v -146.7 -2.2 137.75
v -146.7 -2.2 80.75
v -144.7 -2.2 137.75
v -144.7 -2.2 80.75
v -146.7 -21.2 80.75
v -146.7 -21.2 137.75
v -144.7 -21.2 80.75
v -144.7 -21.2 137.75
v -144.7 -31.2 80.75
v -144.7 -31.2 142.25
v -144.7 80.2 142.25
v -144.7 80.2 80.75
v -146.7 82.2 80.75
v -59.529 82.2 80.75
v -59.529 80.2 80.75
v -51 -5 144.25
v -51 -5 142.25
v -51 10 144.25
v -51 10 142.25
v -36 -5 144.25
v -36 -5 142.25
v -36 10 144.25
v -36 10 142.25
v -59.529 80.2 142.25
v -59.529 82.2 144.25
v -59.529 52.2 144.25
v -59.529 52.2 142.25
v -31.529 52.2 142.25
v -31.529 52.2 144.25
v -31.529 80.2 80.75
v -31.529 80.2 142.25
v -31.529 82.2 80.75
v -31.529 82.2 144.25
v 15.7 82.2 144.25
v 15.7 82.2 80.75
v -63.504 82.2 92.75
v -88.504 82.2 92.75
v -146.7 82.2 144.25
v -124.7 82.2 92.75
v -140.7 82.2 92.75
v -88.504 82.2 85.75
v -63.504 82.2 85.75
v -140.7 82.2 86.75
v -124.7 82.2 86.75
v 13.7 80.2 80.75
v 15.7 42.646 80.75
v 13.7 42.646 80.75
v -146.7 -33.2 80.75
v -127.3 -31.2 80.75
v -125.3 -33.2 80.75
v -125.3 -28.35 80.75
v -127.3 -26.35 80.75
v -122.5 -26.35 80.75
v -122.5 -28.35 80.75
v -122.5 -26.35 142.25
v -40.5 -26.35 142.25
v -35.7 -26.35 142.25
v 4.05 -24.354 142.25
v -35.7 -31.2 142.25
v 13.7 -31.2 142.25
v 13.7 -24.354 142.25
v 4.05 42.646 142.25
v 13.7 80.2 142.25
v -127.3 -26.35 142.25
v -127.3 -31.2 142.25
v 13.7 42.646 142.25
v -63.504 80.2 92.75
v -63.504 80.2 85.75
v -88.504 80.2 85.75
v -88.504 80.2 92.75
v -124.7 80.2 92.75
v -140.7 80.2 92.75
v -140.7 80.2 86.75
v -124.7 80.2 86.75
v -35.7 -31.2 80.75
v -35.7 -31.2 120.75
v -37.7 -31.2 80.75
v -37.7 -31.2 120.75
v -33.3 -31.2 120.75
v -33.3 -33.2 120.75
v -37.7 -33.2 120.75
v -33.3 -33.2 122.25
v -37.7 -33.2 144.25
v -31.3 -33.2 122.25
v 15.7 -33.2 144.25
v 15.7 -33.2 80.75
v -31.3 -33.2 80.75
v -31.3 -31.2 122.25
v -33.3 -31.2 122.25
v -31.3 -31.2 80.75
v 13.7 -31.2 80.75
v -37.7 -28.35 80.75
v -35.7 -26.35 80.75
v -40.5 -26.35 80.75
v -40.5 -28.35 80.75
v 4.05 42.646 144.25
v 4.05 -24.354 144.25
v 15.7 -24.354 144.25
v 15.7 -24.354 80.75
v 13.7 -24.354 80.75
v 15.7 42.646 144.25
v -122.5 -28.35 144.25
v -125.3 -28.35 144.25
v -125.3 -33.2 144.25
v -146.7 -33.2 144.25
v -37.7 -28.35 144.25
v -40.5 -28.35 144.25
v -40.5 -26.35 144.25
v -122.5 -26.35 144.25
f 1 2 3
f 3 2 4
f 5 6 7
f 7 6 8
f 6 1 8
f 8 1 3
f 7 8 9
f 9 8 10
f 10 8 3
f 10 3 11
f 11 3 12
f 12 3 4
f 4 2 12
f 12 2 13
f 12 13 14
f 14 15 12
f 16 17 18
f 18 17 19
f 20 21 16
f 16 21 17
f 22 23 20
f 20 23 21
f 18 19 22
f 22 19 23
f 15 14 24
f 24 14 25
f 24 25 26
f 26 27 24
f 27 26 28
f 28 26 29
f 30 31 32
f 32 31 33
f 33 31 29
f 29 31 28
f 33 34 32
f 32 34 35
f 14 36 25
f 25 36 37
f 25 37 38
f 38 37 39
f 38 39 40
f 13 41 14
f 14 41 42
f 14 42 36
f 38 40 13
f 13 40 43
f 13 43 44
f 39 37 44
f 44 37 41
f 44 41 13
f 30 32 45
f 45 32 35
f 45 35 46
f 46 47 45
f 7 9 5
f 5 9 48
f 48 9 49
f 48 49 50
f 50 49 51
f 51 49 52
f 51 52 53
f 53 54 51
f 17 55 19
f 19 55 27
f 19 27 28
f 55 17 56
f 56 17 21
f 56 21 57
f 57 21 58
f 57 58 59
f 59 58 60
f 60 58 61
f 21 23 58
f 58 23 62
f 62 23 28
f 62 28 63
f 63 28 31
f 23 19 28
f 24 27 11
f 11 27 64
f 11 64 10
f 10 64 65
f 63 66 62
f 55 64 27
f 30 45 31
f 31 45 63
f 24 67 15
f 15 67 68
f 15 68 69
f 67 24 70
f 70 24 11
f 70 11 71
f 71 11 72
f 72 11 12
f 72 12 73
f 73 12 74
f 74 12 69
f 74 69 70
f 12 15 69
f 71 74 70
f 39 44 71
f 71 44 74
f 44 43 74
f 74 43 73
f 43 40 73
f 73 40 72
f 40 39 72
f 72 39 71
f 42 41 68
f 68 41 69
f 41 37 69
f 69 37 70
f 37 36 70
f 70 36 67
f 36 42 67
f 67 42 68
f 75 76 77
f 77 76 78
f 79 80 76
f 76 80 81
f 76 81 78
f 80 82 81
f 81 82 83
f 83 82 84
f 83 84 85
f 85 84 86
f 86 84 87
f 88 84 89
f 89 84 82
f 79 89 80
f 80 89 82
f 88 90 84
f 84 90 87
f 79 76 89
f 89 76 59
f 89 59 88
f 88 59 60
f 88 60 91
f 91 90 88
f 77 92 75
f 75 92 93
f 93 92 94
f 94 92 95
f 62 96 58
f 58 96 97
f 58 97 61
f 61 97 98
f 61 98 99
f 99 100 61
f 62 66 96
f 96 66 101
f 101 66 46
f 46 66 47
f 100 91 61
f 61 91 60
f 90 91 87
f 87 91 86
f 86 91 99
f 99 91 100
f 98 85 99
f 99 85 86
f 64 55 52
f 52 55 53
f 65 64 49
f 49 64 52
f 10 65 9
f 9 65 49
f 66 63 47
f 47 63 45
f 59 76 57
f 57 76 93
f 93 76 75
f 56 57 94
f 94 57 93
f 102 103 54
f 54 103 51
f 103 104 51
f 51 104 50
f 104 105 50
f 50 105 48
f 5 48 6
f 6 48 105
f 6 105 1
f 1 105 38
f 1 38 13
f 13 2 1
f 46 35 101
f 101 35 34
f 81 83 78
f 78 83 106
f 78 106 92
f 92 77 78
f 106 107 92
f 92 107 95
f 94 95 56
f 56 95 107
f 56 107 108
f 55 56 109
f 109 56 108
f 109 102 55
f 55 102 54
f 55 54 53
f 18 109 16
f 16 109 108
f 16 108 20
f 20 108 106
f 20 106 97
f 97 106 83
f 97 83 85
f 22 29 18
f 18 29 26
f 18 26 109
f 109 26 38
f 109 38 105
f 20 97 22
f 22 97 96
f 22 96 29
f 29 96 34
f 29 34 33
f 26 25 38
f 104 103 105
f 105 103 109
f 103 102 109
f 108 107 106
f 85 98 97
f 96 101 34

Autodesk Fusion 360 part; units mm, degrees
ref_plane "Arbeitsebene1" through (-71.75, -25.15, 142.25) normal (0, 0, 1) x (0, -1, 0)
sketch "Skizze1" plane through (0, 0, 142.25) normal (0, 0, 1) x (1, 0, 0)
  line L0 (-35.7, -26.35) -> (-35.7, -31.2)
  line L1 (-35.7, -26.35) -> (-40.5, -26.35)
  line L2 (-40.5, -26.35) -> (-40.5, -28.35)
  line L3 (-35.5, -1) -> (-35.5, -31)
  line L4 (-33.5, -26.15) -> (-40.5, -26.15)
  line L5 (-40.5, -28.35) -> (-37.7, -28.35)
  line L6 (-37.7, -28.35) -> (-37.7, -33.2)
  line L7 (-37.7, -33.2) -> (15.7, -33.2)
  line L8 (-35.7, -31.2) -> (13.7, -31.2)
  line L9 (15.7, -33.2) -> (15.7, 82.2)
  line L10 (-127.3, -26.35) -> (-127.3, -31.2)
  line L11 (-127.3, -26.35) -> (-122.5, -26.35)
  line L12 (-103, -26.15) -> (-129.5, -26.15)
  line L13 (-127.5, -1) -> (-127.5, -31)
  line L14 (-122.5, -26.35) -> (-122.5, -28.35)
  line L15 (-122.5, -28.35) -> (-125.3, -28.35)
  line L16 (-125.3, -28.35) -> (-125.3, -33.2)
  line L17 (-125.3, -33.2) -> (-146.7, -33.2)
  line L18 (-127.3, -31.2) -> (-144.7, -31.2)
  line L19 (-144.7, -31.2) -> (-144.7, 80.2)
  line L20 (-146.7, -33.2) -> (-146.7, 82.2)
  line L21 (15.7, 82.2) -> (-146.7, 82.2)
  line L22 (-144.7, 80.2) -> (13.7, 80.2)
  line L23 (13.7, -31.2) -> (13.7, 80.2)
  line L24 (-122.5, -26.35) -> (-40.5, -26.35)
  dimension "d51" = 0.2
  dimension "d52" = 0.2
  dimension "d53" = 4.8
  dimension "d54" = 2
  dimension "d55" = 4.85
  dimension "d56" = 2.8
  dimension "d57" = 4.85
  dimension "d58" = 53.4
  dimension "d59" = 49.4
  dimension "d60" = 115.4
  dimension "d61" = 0.2
  dimension "d62" = 0.2
  dimension "d63" = 4.8
  dimension "d64" = 4.85
  dimension "d65" = 2
  dimension "d66" = 2.8
  dimension "d67" = 4.85
  dimension "d68" = 21.4
  dimension "d69" = 17.4
  dimension "d70" = 111.4
  dimension "d71" = 115.4
  dimension "d72" = 158.4
  dimension "d73" = 162.4
  dimension "d74" = 111.4
extrude "Extrusion1" add sketch "Skizze1" along normal blind 2
extrude "Extrusion2" add sketch "Skizze1" against normal blind 61.5 contours L0 L1 L2 L5 L6 L7 L8 L9 L10 L11 L14 L15 L16 L17 L18 L19 L20 L21 L22 L23
box "Grundkörper Quader5" cut length 67 width 11.65 height -63.5 placed x (0, 1, 0) y (1, 0, 0) z (0, 0, -1) at (4.05, -24.3544, 80.75)
box "Grundkörper Quader1" cut length 40 width 2 height -41.5 placed x (0, -1, 0) y (-1, 0, 0) z (0, 0, -1) at (-31.3, 6.7996, 80.75)
box "Grundkörper Quader2" cut length 2 width 4.4 height -40 placed x (0, 1, 0) y (1, 0, 0) z (0, 0, -1) at (-37.7, -33.2, 80.75)
sketch "Skizze10" plane through (0, 82.2, 0) normal (0, 1, 0) x (-1, 0, 0)
  line L0 (146.7, 80.75) -> (146.7, 144.25)
  line L1 (146.7, 144.25) -> (-15.7, 144.25)
  line L2 (-15.7, 144.25) -> (-15.7, 80.75)
  line L3 (-15.7, 80.75) -> (146.7, 80.75)
  line L4 (146.7, 80.75) -> (124.7, 80.75) construction
  line L5 (124.7, 80.75) -> (124.7, 92.75) construction
  line L6 (124.7, 92.75) -> (146.7, 92.75) construction
  line L7 (146.7, 92.75) -> (146.7, 80.75) construction
  line L8 (146.7, 80.75) -> (140.7, 80.75) construction
  line L9 (140.7, 80.75) -> (140.7, 86.75) construction
  line L10 (140.7, 86.75) -> (146.7, 86.75) construction
  line L11 (146.7, 86.75) -> (146.7, 80.75) construction
  line L12 (140.7, 86.75) -> (124.7, 86.75)
  line L13 (124.7, 86.75) -> (124.7, 92.75)
  line L14 (124.7, 92.75) -> (140.7, 92.75)
  line L15 (140.7, 92.75) -> (140.7, 86.75)
  line L16 (58.5044, 80.75) -> (88.5044, 80.75) construction
  line L17 (88.5044, 80.75) -> (88.5044, 92.75) construction
  line L18 (88.5044, 92.75) -> (58.5044, 92.75) construction
  line L19 (58.5044, 92.75) -> (58.5044, 80.75) construction
  line L20 (58.5044, 80.75) -> (63.5044, 80.75) construction
  line L21 (63.5044, 80.75) -> (63.5044, 85.75) construction
  line L22 (63.5044, 85.75) -> (58.5044, 85.75) construction
  line L23 (58.5044, 85.75) -> (58.5044, 80.75) construction
  line L24 (63.5044, 85.75) -> (88.5044, 85.75)
  line L25 (88.5044, 85.75) -> (88.5044, 92.75)
  line L26 (88.5044, 92.75) -> (63.5044, 92.75)
  line L27 (63.5044, 92.75) -> (63.5044, 85.75)
  dimension "d87" = 22
  dimension "d88" = 12
  dimension "d89" = 6
  dimension "d90" = 6
  dimension "d93" = 30
  dimension "d94" = 12
  dimension "d95" = 5
  dimension "d96" = 5
extrude "Extrusion3" cut sketch "Skizze10" against normal blind 2 contours L12 L13 L14 L15 | L24 L25 L26 L27
box "Grundkörper Quader3" cut length 30 width 28 height -63.5 placed x (0, 1, 0) y (1, 0, 0) z (0, 0, -1) at (-59.529, 52.2, 80.75)
box "Grundkörper Quader4" cut length 15 width 15 height -2 placed x (0, -1, 0) y (1, 0, 0) z (0, 0, 1) at (-51, 10, 144.25)
sketch "Skizze14" plane through (-146.7, 0, 0) normal (-1, 0, 0) x (0, -1, 0)
  line L0 (33.2, 80.75) -> (33.2, 144.25)
  line L1 (33.2, 144.25) -> (-82.2, 144.25)
  line L2 (-82.2, 144.25) -> (-82.2, 80.75)
  line L3 (-82.2, 80.75) -> (33.2, 80.75)
  line L4 (33.2, 80.75) -> (21.2, 80.75) construction
  line L5 (33.2, 80.75) -> (2.2, 80.75) construction
  line L6 (2.2, 80.75) -> (2.2, 137.75) construction
  line L7 (2.2, 137.75) -> (33.2, 137.75) construction
  line L8 (33.2, 137.75) -> (33.2, 80.75) construction
  line L9 (21.2, 80.75) -> (2.2, 80.75)
  line L10 (2.2, 80.75) -> (2.2, 137.75)
  line L11 (2.2, 137.75) -> (21.2, 137.75)
  line L12 (21.2, 137.75) -> (21.2, 80.75)
  dimension "d112" = 12
  dimension "d114" = 31
  dimension "d115" = 57
extrude "Extrusion4" cut sketch "Skizze14" against normal blind 2 contours L3 L9 L10 L11 L12
